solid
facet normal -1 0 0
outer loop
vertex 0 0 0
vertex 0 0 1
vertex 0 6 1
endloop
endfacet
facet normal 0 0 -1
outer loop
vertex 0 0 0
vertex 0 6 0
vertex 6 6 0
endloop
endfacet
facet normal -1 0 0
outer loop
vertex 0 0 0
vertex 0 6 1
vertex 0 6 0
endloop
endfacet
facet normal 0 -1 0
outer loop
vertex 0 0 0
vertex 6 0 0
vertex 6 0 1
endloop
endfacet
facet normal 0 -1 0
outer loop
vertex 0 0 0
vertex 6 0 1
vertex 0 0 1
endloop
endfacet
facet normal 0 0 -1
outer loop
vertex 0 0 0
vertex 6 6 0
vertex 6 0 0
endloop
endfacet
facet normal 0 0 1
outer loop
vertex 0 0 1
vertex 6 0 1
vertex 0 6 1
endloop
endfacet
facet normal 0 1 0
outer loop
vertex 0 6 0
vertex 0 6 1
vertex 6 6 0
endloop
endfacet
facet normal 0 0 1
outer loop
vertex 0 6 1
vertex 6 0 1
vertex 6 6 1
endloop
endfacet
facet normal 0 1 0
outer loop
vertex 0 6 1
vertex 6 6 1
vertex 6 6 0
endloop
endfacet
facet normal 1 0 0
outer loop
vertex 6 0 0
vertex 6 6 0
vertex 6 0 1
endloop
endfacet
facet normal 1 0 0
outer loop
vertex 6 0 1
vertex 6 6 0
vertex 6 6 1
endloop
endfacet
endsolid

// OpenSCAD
/* Warning, this is a very basic generator with a lot of approximation 
input data : [VQFN, UDX, 6x6x1.0mm, 36, , C, C04-00272C]
generated by com.zoubworld.electronics.cad.model3d.Basic
Date : Sun Feb 15 10:50:48 CET 2026
*/

//body
color("black")
translate([0,0,0])
cube([6.0,6.0,1.0], center=false);
